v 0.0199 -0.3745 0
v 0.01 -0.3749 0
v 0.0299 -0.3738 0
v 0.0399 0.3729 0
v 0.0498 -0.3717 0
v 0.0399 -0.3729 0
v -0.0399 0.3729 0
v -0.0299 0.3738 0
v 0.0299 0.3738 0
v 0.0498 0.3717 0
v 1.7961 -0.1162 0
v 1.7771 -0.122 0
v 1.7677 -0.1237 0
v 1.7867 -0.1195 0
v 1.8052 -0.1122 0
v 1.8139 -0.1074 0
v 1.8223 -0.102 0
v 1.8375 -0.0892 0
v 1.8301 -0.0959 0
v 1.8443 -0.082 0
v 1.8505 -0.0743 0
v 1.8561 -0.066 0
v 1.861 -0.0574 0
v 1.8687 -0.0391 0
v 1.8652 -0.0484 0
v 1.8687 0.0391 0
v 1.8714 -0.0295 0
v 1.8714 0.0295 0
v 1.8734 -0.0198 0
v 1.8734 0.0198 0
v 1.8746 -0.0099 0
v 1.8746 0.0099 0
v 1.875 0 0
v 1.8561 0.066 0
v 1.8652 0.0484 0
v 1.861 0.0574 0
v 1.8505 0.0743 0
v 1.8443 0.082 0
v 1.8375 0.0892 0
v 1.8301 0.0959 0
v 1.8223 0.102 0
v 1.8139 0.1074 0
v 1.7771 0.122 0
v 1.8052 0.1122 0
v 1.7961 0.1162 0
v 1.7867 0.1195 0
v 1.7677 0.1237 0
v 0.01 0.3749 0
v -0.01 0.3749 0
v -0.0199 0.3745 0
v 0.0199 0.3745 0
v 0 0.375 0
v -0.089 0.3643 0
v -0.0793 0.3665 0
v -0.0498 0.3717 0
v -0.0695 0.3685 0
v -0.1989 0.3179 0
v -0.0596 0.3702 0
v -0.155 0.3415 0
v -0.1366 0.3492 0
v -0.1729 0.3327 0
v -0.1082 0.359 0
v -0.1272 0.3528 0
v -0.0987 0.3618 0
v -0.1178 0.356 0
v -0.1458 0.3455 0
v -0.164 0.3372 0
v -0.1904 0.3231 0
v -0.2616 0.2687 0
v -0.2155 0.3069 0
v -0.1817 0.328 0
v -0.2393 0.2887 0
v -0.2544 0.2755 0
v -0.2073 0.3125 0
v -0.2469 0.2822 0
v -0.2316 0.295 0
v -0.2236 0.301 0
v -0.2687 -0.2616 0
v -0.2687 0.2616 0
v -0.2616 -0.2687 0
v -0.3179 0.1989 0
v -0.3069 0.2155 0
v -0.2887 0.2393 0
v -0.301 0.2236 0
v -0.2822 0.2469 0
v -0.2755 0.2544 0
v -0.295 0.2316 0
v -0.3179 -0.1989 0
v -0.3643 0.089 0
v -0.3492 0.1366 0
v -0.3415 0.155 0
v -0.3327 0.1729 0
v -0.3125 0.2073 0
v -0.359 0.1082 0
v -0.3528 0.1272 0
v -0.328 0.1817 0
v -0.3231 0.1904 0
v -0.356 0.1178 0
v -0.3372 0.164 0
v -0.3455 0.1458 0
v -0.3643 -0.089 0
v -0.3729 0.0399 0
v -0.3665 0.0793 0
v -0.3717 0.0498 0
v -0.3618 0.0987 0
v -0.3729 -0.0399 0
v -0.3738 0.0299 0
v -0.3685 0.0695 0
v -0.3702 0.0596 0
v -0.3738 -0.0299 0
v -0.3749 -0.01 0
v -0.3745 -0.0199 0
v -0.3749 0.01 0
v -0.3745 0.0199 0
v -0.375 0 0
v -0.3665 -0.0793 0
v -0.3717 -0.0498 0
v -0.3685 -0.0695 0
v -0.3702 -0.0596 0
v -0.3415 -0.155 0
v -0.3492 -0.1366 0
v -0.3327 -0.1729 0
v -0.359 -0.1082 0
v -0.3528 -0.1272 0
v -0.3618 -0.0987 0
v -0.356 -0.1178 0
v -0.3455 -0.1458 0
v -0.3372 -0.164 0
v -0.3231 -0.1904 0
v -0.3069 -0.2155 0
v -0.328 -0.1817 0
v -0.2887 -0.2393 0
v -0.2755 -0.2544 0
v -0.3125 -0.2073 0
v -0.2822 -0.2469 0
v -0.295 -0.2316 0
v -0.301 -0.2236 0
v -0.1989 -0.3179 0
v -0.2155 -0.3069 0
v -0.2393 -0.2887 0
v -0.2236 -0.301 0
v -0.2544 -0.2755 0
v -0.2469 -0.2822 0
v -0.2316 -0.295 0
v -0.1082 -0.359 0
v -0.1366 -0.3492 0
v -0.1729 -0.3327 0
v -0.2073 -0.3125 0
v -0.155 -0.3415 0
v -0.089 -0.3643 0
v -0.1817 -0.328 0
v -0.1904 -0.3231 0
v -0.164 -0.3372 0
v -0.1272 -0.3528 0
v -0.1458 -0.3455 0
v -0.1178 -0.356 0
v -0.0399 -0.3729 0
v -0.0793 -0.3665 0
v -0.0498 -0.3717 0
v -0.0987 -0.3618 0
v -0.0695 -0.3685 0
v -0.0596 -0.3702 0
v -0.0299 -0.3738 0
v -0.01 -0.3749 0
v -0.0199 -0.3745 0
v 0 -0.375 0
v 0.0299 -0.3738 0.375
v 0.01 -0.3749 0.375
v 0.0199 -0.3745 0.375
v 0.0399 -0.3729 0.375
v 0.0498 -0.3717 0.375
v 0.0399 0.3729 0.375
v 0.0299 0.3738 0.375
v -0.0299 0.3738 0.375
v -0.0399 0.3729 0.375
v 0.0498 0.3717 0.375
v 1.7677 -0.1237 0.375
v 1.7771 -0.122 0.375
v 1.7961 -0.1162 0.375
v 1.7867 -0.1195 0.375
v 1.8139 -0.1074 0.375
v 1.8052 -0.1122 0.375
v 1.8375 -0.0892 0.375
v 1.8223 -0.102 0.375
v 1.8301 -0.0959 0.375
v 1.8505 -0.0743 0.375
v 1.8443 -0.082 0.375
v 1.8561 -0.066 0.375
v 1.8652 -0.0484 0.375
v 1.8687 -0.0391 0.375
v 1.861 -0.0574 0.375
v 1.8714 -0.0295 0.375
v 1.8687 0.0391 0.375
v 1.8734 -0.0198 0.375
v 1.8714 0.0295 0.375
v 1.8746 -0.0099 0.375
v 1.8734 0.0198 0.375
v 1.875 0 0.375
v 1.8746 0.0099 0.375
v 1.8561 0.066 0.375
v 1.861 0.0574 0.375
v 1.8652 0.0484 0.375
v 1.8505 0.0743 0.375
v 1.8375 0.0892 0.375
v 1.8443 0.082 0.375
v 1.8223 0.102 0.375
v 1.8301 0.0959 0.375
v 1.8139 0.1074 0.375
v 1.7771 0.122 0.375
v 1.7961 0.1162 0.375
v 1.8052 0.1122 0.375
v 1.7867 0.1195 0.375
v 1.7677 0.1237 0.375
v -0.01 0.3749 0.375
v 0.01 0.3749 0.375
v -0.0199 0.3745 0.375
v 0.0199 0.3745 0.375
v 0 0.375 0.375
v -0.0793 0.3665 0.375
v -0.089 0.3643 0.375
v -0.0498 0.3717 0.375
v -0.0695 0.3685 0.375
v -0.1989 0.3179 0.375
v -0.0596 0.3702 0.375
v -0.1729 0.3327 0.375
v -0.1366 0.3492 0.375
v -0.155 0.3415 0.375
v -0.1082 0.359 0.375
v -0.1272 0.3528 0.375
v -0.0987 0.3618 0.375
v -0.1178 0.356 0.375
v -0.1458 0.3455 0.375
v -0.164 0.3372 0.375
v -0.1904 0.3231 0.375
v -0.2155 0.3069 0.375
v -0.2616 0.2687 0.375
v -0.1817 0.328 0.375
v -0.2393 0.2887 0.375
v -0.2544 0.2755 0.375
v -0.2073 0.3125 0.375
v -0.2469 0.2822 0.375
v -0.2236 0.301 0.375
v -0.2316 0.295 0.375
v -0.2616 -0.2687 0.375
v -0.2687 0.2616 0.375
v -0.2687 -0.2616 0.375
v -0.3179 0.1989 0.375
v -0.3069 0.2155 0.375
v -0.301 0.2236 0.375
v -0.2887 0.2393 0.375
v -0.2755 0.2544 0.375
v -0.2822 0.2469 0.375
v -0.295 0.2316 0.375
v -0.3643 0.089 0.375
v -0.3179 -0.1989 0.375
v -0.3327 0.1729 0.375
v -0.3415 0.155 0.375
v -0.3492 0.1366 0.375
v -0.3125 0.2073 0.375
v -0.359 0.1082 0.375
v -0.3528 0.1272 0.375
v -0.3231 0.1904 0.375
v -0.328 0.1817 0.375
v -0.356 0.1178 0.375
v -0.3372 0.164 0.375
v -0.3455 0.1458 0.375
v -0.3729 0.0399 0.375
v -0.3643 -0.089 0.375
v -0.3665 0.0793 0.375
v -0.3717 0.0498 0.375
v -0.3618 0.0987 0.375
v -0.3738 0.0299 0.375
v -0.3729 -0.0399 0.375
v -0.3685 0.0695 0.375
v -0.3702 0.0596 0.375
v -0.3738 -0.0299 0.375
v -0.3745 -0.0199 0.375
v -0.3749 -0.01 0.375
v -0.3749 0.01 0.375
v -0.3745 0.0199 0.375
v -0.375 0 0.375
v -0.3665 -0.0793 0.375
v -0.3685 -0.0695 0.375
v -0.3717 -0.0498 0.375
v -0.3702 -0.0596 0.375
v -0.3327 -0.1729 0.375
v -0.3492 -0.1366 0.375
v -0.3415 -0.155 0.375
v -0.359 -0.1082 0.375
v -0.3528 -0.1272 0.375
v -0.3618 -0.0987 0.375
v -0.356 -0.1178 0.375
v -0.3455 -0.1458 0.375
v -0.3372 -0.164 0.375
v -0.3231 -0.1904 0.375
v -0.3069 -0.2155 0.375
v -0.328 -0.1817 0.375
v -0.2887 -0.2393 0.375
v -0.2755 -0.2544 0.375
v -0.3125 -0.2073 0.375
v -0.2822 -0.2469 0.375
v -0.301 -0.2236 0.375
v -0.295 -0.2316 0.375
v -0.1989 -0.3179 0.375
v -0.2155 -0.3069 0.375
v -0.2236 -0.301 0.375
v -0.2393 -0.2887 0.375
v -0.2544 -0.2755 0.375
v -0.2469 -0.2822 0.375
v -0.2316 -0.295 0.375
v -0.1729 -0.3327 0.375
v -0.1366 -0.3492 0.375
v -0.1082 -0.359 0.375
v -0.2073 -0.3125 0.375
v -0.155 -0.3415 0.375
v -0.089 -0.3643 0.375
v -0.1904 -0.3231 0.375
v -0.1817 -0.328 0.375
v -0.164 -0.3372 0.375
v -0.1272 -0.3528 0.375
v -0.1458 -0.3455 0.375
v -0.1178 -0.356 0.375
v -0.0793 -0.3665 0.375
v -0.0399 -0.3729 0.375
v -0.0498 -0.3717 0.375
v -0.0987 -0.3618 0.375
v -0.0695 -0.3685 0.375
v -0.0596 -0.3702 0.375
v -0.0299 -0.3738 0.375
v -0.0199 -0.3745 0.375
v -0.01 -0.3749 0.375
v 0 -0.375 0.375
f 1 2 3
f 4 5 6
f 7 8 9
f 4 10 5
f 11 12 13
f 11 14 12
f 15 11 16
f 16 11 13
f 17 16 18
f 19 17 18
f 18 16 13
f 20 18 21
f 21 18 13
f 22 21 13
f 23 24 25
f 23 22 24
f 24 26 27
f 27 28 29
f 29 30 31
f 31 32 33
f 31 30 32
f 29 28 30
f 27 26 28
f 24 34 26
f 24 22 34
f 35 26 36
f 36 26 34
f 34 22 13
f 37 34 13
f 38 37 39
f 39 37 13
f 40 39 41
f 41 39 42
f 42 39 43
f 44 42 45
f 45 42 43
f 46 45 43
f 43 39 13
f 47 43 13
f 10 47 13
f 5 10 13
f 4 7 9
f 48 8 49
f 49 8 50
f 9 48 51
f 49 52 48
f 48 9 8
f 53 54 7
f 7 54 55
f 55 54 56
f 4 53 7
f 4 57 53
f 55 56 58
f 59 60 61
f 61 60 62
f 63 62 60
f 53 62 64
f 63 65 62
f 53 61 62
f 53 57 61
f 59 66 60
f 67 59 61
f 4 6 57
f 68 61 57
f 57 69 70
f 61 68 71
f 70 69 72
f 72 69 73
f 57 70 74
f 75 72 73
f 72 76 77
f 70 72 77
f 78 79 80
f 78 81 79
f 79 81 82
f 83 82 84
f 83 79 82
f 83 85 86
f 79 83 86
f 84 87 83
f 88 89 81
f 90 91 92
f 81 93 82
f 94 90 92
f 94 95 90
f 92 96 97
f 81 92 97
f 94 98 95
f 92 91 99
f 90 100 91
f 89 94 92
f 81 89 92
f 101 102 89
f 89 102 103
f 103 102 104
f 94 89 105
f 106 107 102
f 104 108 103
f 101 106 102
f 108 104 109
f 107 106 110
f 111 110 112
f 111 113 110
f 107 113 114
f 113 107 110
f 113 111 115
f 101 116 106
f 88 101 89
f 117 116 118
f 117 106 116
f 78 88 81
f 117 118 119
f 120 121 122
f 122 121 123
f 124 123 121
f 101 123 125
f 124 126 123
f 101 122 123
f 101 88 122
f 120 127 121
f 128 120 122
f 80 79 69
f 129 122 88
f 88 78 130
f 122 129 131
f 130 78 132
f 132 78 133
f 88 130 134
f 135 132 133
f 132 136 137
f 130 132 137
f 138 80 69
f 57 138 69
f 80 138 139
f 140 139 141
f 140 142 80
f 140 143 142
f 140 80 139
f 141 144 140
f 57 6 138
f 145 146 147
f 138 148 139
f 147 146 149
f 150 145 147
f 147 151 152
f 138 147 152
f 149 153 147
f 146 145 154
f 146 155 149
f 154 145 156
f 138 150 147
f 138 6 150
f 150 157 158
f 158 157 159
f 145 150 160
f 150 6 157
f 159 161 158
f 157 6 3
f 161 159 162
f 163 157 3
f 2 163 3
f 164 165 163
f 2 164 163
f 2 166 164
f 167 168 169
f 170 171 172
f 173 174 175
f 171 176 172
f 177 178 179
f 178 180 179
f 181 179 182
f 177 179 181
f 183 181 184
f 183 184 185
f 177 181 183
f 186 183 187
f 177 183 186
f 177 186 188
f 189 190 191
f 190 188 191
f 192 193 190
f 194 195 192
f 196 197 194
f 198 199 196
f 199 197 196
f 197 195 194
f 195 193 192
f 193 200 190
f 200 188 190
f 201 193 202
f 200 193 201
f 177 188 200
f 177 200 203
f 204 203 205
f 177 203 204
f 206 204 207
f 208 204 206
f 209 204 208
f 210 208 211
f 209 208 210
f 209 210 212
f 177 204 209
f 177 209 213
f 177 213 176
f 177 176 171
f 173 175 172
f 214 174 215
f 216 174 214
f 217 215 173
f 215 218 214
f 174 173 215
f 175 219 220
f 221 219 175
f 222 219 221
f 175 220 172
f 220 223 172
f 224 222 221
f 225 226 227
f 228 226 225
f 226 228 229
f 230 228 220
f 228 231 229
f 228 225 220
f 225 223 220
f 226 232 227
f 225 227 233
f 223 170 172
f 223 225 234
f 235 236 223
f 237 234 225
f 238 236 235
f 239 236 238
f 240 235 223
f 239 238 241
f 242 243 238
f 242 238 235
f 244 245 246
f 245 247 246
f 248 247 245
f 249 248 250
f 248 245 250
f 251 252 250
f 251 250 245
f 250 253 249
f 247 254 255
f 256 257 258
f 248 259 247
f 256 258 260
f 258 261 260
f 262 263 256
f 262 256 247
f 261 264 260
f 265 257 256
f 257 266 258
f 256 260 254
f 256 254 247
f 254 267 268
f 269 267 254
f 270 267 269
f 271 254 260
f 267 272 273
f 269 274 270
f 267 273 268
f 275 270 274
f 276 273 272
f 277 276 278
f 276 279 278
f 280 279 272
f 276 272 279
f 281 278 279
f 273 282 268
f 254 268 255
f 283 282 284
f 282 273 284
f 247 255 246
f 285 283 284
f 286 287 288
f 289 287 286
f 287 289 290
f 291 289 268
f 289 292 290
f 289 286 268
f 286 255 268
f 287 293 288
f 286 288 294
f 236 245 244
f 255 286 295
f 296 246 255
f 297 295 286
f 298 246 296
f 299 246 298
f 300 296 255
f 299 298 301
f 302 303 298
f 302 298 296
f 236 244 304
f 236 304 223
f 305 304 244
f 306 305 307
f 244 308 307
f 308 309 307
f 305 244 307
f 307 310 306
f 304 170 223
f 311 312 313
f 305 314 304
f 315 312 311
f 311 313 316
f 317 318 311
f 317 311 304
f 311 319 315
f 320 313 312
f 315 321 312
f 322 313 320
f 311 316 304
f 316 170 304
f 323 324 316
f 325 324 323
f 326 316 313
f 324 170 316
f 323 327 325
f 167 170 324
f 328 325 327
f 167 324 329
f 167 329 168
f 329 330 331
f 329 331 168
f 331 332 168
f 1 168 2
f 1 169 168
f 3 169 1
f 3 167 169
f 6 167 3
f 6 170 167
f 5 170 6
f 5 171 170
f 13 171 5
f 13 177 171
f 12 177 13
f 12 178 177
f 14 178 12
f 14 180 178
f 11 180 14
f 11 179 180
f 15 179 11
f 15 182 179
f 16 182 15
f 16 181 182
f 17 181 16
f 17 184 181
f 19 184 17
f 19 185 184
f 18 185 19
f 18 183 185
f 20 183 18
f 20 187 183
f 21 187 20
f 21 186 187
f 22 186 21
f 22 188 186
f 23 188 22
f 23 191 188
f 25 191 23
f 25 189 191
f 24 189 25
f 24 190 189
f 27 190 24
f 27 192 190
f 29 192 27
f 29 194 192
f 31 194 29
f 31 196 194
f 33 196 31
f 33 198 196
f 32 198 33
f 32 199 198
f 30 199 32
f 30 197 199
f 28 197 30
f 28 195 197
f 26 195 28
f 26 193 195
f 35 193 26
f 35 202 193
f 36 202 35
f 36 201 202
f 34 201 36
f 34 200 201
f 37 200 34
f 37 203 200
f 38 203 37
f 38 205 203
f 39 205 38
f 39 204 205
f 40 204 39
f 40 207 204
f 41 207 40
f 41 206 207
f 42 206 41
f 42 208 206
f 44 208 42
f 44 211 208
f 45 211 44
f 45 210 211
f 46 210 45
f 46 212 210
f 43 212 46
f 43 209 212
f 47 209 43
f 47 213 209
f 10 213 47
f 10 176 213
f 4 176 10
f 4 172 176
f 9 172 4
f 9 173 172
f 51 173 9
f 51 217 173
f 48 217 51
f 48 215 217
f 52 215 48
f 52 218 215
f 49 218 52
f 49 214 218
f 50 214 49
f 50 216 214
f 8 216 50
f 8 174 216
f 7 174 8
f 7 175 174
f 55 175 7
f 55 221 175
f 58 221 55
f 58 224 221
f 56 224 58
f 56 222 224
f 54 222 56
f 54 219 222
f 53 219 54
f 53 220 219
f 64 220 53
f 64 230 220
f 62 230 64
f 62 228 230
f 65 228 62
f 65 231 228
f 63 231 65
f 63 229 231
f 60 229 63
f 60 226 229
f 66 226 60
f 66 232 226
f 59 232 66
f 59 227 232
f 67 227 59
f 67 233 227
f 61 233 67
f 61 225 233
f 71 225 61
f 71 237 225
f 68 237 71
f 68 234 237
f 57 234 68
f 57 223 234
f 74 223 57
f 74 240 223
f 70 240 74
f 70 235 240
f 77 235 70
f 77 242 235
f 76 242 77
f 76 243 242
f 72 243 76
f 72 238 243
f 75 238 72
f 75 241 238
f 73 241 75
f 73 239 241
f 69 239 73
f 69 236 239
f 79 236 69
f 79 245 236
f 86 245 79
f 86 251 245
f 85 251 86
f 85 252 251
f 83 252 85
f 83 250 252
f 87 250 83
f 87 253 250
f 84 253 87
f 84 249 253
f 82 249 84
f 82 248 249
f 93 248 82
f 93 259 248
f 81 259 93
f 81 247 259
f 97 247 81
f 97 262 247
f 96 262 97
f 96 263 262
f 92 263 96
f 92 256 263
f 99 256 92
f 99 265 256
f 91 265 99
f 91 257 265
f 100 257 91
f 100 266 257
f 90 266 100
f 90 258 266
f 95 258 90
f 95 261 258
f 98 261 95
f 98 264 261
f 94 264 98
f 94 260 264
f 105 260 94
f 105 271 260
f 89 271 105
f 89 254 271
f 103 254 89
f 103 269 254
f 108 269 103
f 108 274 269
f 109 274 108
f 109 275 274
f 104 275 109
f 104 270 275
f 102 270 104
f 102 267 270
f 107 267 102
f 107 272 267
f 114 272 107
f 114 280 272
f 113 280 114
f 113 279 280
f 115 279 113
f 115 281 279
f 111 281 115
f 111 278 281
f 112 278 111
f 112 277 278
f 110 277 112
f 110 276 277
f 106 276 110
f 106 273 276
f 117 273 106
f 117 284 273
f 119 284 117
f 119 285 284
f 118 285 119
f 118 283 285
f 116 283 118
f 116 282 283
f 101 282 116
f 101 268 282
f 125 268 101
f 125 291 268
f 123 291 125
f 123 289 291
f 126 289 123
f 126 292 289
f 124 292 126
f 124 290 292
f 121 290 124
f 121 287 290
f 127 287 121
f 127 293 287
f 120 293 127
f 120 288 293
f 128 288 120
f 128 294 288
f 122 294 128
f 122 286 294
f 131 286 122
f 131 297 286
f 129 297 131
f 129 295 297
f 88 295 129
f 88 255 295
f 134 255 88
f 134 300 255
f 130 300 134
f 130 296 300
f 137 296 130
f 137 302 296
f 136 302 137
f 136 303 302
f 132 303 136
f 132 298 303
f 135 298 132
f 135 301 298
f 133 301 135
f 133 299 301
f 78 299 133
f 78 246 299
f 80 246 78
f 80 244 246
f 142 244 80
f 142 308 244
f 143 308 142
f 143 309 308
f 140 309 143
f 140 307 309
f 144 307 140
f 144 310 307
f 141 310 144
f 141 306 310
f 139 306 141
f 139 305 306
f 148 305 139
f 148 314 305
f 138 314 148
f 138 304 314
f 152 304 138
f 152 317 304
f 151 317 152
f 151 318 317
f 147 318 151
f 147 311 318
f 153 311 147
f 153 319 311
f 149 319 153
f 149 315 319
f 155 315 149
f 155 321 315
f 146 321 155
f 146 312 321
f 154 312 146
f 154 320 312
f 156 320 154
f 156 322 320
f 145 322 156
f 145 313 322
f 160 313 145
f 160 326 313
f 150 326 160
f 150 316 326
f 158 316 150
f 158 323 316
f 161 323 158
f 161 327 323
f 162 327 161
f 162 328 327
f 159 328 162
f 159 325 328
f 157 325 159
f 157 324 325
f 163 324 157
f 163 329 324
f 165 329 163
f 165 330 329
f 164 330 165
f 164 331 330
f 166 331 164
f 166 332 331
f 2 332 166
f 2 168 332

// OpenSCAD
$fa = 1;
$fs = 0.01;
mag = 2.5;
thickness = mag * 0.15;
l1 = mag * 0.7;
l2 = mag * 0.3 / 2.0;
l3 = mag * 0.1 / 2.0;
ldif = l2 - l3;
hyp = sqrt(l1 * l1 + ldif * ldif);
sinth = ldif / hyp;
costh = l1 / hyp;
lax = l2 * sinth;
lay = l2 * costh;
lbx = l3 * sinth;
lby = l3 * costh;
p0 = [lax, -lay];
p1 = [l1+lbx, -lby];
p2 = [l1+lbx, lby];
p3 = [lax, lay];
points = [p0, p1, p2, p3];
linear_extrude(height = thickness) {
  polygon(points);
  translate([0, 0, 0]) circle(l2);
  translate([l1, 0, 0]) circle(l3);
}
